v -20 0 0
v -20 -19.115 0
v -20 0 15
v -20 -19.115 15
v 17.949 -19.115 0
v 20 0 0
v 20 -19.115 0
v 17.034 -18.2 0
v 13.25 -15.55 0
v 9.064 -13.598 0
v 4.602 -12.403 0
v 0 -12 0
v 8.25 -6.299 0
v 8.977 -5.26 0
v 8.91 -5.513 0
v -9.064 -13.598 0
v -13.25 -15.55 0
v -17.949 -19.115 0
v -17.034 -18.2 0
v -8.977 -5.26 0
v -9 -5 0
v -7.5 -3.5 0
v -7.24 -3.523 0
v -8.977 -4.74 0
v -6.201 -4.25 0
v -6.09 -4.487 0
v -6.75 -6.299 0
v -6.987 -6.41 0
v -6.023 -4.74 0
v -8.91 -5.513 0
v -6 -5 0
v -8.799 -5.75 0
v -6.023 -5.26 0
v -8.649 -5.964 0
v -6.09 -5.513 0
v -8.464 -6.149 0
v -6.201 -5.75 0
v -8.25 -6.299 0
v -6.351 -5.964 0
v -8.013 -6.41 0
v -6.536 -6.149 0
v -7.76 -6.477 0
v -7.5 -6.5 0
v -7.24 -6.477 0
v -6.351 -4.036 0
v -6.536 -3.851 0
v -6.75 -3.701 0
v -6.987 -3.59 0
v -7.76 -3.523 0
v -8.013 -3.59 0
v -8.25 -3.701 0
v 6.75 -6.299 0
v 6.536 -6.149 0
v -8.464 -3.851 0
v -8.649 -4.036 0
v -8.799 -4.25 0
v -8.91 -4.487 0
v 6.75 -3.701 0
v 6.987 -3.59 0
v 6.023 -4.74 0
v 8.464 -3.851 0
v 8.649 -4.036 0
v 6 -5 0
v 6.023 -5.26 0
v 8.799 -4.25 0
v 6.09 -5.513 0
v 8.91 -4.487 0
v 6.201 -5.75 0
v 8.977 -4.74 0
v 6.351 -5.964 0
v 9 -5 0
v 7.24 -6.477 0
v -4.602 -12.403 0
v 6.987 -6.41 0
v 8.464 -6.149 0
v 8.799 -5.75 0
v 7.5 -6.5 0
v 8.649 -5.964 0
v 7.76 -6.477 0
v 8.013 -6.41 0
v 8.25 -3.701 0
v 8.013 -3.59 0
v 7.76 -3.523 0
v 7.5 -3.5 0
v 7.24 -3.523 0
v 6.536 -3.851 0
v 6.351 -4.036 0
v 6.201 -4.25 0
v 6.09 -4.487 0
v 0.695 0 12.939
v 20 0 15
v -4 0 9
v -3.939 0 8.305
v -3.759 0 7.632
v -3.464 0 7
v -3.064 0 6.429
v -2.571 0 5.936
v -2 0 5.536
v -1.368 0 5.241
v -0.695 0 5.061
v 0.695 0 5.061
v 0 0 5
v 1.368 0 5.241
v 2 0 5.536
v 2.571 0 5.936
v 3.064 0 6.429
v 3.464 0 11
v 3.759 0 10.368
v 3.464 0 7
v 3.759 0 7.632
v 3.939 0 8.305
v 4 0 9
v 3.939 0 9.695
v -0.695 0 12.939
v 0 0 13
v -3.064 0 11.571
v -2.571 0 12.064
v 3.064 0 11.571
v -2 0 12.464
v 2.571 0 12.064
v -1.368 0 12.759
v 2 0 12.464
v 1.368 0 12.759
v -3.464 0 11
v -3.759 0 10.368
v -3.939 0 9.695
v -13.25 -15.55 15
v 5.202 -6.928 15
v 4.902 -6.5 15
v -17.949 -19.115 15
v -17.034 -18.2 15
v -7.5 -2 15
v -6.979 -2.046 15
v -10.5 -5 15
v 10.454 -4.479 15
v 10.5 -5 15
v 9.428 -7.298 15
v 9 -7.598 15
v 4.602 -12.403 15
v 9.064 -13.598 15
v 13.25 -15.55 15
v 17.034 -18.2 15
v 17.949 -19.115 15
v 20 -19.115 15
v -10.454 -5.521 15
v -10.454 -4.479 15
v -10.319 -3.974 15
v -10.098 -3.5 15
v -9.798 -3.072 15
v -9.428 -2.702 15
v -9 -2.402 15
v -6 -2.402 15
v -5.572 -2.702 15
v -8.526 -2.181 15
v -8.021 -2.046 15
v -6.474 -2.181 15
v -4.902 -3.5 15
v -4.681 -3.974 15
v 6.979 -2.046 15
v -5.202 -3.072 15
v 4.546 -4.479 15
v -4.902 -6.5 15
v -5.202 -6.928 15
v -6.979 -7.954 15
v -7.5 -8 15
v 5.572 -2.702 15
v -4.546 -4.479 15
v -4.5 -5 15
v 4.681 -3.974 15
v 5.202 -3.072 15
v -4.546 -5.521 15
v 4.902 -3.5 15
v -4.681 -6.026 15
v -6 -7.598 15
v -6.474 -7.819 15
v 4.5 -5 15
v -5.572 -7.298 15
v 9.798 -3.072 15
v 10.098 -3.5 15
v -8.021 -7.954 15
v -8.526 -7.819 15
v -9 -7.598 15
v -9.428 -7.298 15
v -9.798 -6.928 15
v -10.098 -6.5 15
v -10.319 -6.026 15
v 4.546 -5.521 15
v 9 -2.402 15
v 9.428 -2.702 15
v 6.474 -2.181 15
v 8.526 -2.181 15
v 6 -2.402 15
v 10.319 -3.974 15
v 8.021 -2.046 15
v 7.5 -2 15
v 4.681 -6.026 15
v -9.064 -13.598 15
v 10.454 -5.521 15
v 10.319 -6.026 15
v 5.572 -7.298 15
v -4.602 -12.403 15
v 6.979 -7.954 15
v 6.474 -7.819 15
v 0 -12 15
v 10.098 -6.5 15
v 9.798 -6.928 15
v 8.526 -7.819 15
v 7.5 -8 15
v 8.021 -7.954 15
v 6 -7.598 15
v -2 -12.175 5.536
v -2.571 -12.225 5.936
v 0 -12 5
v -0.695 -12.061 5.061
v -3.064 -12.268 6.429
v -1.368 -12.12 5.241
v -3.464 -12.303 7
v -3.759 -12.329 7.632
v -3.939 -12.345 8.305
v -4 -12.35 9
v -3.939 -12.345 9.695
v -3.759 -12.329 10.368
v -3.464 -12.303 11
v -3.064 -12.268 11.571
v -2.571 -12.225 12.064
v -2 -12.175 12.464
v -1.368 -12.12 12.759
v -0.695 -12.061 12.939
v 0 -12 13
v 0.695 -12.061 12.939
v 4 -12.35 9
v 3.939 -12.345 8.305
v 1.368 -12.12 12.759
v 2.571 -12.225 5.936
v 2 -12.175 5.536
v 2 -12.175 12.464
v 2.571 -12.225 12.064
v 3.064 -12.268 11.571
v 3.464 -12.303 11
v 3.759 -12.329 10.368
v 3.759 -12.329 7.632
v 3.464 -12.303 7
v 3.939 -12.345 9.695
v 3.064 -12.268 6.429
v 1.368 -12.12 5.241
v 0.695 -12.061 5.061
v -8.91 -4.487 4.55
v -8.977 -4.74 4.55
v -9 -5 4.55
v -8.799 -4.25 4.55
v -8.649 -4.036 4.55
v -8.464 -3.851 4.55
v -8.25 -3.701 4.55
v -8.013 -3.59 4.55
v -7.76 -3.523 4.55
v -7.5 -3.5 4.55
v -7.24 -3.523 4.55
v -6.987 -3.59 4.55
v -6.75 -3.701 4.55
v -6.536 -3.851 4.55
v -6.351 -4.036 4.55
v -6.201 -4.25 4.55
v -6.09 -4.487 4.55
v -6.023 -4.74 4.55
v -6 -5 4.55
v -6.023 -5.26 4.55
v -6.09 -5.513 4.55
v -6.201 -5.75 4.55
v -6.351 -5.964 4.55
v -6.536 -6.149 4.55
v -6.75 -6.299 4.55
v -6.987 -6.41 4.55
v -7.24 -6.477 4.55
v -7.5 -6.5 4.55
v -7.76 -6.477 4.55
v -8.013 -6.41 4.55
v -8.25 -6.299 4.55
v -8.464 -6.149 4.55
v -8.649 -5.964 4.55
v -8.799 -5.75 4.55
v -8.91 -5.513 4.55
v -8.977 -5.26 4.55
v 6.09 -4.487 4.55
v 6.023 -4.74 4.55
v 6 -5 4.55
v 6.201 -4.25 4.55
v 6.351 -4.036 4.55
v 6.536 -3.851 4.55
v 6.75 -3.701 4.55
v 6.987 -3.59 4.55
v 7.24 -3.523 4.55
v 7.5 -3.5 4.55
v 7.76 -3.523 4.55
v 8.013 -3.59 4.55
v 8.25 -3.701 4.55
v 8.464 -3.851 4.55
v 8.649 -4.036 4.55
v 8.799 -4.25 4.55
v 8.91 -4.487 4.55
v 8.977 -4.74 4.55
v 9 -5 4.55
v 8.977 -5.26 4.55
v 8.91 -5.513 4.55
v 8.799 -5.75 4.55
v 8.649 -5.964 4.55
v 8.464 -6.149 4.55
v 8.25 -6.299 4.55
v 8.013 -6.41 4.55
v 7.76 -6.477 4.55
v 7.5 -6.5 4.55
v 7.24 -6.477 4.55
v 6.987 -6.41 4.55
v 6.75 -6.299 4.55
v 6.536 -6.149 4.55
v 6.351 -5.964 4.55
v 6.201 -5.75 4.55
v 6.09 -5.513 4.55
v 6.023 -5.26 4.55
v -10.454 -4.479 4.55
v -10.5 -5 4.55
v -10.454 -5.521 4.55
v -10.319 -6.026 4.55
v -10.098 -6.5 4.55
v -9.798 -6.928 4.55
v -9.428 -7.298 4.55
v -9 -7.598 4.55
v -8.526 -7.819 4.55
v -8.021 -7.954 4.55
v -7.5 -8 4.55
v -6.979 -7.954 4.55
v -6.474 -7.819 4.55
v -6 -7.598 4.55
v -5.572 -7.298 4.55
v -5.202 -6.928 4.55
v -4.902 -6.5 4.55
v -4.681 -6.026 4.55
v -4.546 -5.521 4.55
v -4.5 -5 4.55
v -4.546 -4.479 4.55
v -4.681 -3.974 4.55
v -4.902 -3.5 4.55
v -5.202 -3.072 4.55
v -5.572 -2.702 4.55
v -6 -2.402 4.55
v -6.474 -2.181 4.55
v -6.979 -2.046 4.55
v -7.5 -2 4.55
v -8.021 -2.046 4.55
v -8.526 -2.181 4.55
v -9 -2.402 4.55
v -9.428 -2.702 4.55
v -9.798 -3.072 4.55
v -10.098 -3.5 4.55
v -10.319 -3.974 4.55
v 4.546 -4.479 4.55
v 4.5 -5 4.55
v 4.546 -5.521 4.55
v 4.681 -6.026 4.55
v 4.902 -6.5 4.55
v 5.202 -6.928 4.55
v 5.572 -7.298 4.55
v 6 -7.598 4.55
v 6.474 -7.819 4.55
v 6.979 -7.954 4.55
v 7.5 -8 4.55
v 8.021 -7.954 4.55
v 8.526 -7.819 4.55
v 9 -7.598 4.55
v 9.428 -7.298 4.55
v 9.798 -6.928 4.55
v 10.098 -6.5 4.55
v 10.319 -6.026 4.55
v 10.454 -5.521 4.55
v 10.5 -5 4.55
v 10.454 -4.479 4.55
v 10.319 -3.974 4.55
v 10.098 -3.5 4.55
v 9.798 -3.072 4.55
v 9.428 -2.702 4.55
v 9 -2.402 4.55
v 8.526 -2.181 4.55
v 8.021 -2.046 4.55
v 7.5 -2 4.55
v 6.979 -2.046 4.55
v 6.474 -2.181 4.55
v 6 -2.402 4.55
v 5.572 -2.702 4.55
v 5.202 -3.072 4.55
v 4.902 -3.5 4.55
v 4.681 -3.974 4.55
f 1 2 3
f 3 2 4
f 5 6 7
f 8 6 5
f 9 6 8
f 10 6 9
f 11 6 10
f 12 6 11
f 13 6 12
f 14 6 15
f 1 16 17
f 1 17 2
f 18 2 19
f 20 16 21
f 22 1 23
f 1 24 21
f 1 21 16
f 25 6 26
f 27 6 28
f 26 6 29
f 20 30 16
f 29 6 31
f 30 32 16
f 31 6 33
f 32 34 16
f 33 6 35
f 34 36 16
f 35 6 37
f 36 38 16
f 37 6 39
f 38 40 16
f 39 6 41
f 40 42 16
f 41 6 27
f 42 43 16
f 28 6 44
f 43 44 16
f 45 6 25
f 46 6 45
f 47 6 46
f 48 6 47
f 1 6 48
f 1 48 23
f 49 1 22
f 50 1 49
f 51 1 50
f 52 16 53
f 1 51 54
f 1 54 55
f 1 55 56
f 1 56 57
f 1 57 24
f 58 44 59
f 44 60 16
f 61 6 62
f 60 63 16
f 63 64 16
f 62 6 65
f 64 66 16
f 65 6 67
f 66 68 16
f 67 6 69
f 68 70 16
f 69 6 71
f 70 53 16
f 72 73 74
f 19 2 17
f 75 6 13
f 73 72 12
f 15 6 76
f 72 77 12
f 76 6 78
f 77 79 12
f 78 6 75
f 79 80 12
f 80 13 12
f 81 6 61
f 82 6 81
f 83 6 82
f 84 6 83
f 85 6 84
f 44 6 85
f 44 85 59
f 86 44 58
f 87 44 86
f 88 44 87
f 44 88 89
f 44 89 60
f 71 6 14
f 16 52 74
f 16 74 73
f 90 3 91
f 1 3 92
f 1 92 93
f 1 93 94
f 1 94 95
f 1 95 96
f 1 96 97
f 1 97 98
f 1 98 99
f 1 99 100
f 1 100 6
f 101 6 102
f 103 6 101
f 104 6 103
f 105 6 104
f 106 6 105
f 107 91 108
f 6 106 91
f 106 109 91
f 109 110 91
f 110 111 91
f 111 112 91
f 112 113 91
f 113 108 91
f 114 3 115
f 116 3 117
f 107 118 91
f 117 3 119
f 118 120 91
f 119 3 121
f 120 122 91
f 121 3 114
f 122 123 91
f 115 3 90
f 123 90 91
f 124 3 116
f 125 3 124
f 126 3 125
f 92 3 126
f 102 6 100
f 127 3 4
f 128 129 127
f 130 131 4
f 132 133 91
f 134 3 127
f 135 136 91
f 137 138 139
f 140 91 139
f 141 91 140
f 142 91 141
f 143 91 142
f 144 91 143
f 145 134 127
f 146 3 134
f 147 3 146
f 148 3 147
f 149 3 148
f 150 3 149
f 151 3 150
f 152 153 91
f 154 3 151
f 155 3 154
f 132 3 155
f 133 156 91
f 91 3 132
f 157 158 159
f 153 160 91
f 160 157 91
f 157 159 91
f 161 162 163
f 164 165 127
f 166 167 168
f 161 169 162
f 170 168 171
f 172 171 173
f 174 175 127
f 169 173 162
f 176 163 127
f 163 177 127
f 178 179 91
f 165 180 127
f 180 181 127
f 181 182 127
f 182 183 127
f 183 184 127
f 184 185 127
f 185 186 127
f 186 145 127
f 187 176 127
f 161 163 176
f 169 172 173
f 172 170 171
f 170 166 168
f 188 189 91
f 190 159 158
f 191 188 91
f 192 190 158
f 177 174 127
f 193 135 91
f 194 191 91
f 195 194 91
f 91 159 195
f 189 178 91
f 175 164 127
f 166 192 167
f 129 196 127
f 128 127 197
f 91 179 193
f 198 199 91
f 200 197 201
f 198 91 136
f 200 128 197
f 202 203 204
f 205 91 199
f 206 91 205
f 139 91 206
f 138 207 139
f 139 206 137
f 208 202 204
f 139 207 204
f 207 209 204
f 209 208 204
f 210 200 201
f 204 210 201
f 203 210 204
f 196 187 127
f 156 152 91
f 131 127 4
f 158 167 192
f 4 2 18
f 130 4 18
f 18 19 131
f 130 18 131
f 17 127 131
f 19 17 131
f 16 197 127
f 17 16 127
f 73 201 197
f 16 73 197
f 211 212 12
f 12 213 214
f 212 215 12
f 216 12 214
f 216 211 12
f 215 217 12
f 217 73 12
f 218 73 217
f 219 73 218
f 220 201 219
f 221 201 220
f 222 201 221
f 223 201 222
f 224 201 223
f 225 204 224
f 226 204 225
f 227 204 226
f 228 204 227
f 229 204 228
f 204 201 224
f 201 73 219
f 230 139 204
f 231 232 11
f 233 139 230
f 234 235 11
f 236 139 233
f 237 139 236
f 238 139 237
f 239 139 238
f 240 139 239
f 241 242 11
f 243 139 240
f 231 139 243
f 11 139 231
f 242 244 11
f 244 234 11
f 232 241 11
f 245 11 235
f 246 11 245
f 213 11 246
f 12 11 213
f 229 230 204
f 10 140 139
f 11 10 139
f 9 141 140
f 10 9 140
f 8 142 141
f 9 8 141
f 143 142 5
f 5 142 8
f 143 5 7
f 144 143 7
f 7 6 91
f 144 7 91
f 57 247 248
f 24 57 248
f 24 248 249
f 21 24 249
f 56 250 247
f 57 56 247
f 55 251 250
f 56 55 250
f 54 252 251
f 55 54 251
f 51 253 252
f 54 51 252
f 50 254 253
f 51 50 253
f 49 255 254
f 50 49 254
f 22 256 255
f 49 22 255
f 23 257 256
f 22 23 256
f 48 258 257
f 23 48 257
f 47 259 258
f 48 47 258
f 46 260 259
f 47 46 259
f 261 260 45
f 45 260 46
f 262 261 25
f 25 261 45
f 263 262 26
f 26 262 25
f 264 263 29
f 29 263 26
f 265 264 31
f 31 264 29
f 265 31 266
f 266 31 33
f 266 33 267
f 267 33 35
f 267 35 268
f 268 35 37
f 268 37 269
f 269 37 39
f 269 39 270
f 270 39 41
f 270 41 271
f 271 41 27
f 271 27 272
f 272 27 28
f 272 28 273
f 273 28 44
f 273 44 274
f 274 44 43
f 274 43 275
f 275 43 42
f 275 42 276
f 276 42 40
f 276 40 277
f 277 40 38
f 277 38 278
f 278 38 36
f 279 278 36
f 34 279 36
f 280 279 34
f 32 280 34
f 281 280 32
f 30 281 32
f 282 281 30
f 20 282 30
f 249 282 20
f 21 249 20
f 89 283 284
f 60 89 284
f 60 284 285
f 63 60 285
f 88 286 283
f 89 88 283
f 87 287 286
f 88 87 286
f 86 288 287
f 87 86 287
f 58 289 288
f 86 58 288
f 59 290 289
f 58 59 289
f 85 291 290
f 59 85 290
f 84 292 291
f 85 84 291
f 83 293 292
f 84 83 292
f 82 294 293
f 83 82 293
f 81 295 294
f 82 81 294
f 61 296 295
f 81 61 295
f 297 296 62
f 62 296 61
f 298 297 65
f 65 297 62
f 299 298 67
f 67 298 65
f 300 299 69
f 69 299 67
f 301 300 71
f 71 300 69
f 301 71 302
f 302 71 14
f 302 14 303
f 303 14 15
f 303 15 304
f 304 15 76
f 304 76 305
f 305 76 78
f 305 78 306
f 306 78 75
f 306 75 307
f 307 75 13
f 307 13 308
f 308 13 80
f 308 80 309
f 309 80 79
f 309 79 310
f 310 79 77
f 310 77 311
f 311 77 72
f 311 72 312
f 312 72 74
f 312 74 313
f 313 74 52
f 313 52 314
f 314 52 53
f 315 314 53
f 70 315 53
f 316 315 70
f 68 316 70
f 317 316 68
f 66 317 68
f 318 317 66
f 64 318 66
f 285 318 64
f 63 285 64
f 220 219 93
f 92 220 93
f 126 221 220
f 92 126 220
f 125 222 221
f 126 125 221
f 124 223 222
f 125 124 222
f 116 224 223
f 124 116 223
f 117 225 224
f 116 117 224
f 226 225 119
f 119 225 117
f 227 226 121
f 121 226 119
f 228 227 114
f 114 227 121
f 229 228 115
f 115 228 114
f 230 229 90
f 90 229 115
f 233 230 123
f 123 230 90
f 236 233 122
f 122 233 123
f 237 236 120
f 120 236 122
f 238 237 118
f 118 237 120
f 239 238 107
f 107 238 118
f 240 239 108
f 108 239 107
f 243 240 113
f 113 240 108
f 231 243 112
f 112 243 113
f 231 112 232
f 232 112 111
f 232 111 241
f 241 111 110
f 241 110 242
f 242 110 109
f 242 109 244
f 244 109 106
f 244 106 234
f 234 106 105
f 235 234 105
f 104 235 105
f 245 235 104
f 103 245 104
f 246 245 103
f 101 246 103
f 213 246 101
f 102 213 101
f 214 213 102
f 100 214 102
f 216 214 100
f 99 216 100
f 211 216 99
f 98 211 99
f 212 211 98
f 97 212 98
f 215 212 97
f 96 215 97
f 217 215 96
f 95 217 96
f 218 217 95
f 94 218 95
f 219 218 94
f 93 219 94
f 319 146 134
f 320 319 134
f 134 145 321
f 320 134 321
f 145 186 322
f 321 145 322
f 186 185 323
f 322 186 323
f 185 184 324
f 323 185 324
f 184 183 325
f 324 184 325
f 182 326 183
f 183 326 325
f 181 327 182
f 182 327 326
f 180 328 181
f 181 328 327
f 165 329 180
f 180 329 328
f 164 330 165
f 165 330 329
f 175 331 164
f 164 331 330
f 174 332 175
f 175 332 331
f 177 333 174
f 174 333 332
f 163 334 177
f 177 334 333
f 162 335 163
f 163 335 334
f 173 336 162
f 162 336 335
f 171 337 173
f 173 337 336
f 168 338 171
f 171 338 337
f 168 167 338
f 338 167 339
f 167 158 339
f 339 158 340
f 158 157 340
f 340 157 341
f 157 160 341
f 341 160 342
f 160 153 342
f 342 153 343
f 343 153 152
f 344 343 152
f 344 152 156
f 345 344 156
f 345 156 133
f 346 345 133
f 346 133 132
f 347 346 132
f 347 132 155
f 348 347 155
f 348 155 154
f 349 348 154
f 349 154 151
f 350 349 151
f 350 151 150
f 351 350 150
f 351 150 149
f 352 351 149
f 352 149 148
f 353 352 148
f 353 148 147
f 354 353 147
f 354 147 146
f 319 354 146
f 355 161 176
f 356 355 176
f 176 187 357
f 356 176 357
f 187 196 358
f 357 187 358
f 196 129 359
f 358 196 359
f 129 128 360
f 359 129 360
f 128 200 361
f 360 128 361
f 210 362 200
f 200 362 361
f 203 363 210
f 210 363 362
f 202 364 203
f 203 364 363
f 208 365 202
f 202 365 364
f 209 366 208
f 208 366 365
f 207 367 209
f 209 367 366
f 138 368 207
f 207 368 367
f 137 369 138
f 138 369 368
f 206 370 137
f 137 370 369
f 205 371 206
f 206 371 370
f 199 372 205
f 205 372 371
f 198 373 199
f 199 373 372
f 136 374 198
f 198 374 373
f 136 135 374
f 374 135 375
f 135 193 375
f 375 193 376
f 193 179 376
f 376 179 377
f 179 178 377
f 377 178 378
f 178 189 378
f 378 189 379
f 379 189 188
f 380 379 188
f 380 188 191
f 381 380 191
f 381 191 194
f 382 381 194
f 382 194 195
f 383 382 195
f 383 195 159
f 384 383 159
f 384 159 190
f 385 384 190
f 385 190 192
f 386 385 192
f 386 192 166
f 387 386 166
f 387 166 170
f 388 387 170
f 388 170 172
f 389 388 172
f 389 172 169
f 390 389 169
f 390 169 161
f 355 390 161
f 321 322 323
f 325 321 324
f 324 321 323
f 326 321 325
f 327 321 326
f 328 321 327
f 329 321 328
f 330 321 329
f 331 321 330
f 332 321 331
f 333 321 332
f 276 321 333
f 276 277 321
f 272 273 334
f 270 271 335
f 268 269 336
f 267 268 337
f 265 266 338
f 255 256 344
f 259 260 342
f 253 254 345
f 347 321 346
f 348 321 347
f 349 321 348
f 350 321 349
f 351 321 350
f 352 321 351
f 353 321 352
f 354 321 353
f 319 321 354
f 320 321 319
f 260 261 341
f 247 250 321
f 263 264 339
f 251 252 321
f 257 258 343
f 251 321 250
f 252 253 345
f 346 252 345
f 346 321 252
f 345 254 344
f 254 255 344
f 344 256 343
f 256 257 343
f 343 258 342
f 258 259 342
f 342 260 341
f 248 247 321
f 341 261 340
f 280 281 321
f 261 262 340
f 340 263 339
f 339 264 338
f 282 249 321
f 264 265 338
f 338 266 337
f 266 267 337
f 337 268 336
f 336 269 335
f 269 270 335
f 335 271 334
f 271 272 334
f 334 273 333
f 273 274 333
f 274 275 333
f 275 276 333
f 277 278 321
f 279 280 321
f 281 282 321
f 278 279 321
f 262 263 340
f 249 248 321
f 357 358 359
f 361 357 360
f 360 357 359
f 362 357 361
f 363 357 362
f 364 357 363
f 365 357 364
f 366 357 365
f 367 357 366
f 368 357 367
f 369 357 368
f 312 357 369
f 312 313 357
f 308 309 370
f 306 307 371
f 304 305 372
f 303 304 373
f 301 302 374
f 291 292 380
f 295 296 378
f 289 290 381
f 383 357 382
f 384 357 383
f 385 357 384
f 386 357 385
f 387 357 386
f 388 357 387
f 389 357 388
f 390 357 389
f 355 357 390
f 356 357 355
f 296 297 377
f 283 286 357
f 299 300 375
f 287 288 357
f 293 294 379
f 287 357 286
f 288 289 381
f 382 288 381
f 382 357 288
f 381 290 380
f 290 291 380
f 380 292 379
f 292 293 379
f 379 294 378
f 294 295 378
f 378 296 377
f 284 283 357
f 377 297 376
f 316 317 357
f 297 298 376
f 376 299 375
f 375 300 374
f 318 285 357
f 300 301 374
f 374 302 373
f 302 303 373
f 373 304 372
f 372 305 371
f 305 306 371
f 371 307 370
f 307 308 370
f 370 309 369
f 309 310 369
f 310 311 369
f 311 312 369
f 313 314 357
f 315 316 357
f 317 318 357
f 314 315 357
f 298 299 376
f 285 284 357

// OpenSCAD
//shaft_height: 42mm;

//Dial indicator sizes
shaft_diameter=8;
housing_diameter=53;
housing_clearance=15;

//Distance from back of housing to center of shaft
shaft_offset=9;

//Size of "nozzle mount block" (adapted from original nozzle mount)
block_width=40;
//block_height=16;
block_height=12;
block_depth=housing_clearance;

//Hole center distance from nozzle mount
offset_y=9;

//Center of mounting hole, distance below top surface
mount_hole_offset_z=7;

//Distance (cc) between mounting holes
mount_hole_distance=15;

mount_hole_diameter=3;
mount_head_diameter=6; //Fits cap head screws
mount_head_depth=4.55; //Depth of screw thread through block

//Extra height to cover for housing cutout
cutout_cutout = 2;
cutout_height=housing_diameter/2-sqrt(housing_diameter*housing_diameter-block_width*block_width)/2-cutout_cutout;

$fn=36;

//Print on its back (surface facing x-carriage)
rotate([90,0,0])
difference()
{
	//The block
	translate([-block_width/2,0,0]) cube([block_width,block_depth,block_height+cutout_height]);

	//Hole for indicator shaft
	translate([0, shaft_offset, -1]) cylinder(r=shaft_diameter/2, h=block_height+2);

	//Mounting holes
	for(side=[-1,1])
	{
		translate([side*mount_hole_distance/2, 0, block_height-mount_hole_offset_z])
			rotate([270,0,0])
			{
				//Screw holes
				translate([0,0,-1]) cylinder(r=mount_hole_diameter/2,h=block_depth+2);

				//Countersink heads
				translate([0,0,mount_head_depth]) cylinder(r=mount_head_diameter/2,block_depth);
			}
	}

	//Cutout for housing
	translate([0, -1, block_height+housing_diameter/2]) rotate([270,0,0]) cylinder(r=housing_diameter/2,h=block_depth+2);
}
